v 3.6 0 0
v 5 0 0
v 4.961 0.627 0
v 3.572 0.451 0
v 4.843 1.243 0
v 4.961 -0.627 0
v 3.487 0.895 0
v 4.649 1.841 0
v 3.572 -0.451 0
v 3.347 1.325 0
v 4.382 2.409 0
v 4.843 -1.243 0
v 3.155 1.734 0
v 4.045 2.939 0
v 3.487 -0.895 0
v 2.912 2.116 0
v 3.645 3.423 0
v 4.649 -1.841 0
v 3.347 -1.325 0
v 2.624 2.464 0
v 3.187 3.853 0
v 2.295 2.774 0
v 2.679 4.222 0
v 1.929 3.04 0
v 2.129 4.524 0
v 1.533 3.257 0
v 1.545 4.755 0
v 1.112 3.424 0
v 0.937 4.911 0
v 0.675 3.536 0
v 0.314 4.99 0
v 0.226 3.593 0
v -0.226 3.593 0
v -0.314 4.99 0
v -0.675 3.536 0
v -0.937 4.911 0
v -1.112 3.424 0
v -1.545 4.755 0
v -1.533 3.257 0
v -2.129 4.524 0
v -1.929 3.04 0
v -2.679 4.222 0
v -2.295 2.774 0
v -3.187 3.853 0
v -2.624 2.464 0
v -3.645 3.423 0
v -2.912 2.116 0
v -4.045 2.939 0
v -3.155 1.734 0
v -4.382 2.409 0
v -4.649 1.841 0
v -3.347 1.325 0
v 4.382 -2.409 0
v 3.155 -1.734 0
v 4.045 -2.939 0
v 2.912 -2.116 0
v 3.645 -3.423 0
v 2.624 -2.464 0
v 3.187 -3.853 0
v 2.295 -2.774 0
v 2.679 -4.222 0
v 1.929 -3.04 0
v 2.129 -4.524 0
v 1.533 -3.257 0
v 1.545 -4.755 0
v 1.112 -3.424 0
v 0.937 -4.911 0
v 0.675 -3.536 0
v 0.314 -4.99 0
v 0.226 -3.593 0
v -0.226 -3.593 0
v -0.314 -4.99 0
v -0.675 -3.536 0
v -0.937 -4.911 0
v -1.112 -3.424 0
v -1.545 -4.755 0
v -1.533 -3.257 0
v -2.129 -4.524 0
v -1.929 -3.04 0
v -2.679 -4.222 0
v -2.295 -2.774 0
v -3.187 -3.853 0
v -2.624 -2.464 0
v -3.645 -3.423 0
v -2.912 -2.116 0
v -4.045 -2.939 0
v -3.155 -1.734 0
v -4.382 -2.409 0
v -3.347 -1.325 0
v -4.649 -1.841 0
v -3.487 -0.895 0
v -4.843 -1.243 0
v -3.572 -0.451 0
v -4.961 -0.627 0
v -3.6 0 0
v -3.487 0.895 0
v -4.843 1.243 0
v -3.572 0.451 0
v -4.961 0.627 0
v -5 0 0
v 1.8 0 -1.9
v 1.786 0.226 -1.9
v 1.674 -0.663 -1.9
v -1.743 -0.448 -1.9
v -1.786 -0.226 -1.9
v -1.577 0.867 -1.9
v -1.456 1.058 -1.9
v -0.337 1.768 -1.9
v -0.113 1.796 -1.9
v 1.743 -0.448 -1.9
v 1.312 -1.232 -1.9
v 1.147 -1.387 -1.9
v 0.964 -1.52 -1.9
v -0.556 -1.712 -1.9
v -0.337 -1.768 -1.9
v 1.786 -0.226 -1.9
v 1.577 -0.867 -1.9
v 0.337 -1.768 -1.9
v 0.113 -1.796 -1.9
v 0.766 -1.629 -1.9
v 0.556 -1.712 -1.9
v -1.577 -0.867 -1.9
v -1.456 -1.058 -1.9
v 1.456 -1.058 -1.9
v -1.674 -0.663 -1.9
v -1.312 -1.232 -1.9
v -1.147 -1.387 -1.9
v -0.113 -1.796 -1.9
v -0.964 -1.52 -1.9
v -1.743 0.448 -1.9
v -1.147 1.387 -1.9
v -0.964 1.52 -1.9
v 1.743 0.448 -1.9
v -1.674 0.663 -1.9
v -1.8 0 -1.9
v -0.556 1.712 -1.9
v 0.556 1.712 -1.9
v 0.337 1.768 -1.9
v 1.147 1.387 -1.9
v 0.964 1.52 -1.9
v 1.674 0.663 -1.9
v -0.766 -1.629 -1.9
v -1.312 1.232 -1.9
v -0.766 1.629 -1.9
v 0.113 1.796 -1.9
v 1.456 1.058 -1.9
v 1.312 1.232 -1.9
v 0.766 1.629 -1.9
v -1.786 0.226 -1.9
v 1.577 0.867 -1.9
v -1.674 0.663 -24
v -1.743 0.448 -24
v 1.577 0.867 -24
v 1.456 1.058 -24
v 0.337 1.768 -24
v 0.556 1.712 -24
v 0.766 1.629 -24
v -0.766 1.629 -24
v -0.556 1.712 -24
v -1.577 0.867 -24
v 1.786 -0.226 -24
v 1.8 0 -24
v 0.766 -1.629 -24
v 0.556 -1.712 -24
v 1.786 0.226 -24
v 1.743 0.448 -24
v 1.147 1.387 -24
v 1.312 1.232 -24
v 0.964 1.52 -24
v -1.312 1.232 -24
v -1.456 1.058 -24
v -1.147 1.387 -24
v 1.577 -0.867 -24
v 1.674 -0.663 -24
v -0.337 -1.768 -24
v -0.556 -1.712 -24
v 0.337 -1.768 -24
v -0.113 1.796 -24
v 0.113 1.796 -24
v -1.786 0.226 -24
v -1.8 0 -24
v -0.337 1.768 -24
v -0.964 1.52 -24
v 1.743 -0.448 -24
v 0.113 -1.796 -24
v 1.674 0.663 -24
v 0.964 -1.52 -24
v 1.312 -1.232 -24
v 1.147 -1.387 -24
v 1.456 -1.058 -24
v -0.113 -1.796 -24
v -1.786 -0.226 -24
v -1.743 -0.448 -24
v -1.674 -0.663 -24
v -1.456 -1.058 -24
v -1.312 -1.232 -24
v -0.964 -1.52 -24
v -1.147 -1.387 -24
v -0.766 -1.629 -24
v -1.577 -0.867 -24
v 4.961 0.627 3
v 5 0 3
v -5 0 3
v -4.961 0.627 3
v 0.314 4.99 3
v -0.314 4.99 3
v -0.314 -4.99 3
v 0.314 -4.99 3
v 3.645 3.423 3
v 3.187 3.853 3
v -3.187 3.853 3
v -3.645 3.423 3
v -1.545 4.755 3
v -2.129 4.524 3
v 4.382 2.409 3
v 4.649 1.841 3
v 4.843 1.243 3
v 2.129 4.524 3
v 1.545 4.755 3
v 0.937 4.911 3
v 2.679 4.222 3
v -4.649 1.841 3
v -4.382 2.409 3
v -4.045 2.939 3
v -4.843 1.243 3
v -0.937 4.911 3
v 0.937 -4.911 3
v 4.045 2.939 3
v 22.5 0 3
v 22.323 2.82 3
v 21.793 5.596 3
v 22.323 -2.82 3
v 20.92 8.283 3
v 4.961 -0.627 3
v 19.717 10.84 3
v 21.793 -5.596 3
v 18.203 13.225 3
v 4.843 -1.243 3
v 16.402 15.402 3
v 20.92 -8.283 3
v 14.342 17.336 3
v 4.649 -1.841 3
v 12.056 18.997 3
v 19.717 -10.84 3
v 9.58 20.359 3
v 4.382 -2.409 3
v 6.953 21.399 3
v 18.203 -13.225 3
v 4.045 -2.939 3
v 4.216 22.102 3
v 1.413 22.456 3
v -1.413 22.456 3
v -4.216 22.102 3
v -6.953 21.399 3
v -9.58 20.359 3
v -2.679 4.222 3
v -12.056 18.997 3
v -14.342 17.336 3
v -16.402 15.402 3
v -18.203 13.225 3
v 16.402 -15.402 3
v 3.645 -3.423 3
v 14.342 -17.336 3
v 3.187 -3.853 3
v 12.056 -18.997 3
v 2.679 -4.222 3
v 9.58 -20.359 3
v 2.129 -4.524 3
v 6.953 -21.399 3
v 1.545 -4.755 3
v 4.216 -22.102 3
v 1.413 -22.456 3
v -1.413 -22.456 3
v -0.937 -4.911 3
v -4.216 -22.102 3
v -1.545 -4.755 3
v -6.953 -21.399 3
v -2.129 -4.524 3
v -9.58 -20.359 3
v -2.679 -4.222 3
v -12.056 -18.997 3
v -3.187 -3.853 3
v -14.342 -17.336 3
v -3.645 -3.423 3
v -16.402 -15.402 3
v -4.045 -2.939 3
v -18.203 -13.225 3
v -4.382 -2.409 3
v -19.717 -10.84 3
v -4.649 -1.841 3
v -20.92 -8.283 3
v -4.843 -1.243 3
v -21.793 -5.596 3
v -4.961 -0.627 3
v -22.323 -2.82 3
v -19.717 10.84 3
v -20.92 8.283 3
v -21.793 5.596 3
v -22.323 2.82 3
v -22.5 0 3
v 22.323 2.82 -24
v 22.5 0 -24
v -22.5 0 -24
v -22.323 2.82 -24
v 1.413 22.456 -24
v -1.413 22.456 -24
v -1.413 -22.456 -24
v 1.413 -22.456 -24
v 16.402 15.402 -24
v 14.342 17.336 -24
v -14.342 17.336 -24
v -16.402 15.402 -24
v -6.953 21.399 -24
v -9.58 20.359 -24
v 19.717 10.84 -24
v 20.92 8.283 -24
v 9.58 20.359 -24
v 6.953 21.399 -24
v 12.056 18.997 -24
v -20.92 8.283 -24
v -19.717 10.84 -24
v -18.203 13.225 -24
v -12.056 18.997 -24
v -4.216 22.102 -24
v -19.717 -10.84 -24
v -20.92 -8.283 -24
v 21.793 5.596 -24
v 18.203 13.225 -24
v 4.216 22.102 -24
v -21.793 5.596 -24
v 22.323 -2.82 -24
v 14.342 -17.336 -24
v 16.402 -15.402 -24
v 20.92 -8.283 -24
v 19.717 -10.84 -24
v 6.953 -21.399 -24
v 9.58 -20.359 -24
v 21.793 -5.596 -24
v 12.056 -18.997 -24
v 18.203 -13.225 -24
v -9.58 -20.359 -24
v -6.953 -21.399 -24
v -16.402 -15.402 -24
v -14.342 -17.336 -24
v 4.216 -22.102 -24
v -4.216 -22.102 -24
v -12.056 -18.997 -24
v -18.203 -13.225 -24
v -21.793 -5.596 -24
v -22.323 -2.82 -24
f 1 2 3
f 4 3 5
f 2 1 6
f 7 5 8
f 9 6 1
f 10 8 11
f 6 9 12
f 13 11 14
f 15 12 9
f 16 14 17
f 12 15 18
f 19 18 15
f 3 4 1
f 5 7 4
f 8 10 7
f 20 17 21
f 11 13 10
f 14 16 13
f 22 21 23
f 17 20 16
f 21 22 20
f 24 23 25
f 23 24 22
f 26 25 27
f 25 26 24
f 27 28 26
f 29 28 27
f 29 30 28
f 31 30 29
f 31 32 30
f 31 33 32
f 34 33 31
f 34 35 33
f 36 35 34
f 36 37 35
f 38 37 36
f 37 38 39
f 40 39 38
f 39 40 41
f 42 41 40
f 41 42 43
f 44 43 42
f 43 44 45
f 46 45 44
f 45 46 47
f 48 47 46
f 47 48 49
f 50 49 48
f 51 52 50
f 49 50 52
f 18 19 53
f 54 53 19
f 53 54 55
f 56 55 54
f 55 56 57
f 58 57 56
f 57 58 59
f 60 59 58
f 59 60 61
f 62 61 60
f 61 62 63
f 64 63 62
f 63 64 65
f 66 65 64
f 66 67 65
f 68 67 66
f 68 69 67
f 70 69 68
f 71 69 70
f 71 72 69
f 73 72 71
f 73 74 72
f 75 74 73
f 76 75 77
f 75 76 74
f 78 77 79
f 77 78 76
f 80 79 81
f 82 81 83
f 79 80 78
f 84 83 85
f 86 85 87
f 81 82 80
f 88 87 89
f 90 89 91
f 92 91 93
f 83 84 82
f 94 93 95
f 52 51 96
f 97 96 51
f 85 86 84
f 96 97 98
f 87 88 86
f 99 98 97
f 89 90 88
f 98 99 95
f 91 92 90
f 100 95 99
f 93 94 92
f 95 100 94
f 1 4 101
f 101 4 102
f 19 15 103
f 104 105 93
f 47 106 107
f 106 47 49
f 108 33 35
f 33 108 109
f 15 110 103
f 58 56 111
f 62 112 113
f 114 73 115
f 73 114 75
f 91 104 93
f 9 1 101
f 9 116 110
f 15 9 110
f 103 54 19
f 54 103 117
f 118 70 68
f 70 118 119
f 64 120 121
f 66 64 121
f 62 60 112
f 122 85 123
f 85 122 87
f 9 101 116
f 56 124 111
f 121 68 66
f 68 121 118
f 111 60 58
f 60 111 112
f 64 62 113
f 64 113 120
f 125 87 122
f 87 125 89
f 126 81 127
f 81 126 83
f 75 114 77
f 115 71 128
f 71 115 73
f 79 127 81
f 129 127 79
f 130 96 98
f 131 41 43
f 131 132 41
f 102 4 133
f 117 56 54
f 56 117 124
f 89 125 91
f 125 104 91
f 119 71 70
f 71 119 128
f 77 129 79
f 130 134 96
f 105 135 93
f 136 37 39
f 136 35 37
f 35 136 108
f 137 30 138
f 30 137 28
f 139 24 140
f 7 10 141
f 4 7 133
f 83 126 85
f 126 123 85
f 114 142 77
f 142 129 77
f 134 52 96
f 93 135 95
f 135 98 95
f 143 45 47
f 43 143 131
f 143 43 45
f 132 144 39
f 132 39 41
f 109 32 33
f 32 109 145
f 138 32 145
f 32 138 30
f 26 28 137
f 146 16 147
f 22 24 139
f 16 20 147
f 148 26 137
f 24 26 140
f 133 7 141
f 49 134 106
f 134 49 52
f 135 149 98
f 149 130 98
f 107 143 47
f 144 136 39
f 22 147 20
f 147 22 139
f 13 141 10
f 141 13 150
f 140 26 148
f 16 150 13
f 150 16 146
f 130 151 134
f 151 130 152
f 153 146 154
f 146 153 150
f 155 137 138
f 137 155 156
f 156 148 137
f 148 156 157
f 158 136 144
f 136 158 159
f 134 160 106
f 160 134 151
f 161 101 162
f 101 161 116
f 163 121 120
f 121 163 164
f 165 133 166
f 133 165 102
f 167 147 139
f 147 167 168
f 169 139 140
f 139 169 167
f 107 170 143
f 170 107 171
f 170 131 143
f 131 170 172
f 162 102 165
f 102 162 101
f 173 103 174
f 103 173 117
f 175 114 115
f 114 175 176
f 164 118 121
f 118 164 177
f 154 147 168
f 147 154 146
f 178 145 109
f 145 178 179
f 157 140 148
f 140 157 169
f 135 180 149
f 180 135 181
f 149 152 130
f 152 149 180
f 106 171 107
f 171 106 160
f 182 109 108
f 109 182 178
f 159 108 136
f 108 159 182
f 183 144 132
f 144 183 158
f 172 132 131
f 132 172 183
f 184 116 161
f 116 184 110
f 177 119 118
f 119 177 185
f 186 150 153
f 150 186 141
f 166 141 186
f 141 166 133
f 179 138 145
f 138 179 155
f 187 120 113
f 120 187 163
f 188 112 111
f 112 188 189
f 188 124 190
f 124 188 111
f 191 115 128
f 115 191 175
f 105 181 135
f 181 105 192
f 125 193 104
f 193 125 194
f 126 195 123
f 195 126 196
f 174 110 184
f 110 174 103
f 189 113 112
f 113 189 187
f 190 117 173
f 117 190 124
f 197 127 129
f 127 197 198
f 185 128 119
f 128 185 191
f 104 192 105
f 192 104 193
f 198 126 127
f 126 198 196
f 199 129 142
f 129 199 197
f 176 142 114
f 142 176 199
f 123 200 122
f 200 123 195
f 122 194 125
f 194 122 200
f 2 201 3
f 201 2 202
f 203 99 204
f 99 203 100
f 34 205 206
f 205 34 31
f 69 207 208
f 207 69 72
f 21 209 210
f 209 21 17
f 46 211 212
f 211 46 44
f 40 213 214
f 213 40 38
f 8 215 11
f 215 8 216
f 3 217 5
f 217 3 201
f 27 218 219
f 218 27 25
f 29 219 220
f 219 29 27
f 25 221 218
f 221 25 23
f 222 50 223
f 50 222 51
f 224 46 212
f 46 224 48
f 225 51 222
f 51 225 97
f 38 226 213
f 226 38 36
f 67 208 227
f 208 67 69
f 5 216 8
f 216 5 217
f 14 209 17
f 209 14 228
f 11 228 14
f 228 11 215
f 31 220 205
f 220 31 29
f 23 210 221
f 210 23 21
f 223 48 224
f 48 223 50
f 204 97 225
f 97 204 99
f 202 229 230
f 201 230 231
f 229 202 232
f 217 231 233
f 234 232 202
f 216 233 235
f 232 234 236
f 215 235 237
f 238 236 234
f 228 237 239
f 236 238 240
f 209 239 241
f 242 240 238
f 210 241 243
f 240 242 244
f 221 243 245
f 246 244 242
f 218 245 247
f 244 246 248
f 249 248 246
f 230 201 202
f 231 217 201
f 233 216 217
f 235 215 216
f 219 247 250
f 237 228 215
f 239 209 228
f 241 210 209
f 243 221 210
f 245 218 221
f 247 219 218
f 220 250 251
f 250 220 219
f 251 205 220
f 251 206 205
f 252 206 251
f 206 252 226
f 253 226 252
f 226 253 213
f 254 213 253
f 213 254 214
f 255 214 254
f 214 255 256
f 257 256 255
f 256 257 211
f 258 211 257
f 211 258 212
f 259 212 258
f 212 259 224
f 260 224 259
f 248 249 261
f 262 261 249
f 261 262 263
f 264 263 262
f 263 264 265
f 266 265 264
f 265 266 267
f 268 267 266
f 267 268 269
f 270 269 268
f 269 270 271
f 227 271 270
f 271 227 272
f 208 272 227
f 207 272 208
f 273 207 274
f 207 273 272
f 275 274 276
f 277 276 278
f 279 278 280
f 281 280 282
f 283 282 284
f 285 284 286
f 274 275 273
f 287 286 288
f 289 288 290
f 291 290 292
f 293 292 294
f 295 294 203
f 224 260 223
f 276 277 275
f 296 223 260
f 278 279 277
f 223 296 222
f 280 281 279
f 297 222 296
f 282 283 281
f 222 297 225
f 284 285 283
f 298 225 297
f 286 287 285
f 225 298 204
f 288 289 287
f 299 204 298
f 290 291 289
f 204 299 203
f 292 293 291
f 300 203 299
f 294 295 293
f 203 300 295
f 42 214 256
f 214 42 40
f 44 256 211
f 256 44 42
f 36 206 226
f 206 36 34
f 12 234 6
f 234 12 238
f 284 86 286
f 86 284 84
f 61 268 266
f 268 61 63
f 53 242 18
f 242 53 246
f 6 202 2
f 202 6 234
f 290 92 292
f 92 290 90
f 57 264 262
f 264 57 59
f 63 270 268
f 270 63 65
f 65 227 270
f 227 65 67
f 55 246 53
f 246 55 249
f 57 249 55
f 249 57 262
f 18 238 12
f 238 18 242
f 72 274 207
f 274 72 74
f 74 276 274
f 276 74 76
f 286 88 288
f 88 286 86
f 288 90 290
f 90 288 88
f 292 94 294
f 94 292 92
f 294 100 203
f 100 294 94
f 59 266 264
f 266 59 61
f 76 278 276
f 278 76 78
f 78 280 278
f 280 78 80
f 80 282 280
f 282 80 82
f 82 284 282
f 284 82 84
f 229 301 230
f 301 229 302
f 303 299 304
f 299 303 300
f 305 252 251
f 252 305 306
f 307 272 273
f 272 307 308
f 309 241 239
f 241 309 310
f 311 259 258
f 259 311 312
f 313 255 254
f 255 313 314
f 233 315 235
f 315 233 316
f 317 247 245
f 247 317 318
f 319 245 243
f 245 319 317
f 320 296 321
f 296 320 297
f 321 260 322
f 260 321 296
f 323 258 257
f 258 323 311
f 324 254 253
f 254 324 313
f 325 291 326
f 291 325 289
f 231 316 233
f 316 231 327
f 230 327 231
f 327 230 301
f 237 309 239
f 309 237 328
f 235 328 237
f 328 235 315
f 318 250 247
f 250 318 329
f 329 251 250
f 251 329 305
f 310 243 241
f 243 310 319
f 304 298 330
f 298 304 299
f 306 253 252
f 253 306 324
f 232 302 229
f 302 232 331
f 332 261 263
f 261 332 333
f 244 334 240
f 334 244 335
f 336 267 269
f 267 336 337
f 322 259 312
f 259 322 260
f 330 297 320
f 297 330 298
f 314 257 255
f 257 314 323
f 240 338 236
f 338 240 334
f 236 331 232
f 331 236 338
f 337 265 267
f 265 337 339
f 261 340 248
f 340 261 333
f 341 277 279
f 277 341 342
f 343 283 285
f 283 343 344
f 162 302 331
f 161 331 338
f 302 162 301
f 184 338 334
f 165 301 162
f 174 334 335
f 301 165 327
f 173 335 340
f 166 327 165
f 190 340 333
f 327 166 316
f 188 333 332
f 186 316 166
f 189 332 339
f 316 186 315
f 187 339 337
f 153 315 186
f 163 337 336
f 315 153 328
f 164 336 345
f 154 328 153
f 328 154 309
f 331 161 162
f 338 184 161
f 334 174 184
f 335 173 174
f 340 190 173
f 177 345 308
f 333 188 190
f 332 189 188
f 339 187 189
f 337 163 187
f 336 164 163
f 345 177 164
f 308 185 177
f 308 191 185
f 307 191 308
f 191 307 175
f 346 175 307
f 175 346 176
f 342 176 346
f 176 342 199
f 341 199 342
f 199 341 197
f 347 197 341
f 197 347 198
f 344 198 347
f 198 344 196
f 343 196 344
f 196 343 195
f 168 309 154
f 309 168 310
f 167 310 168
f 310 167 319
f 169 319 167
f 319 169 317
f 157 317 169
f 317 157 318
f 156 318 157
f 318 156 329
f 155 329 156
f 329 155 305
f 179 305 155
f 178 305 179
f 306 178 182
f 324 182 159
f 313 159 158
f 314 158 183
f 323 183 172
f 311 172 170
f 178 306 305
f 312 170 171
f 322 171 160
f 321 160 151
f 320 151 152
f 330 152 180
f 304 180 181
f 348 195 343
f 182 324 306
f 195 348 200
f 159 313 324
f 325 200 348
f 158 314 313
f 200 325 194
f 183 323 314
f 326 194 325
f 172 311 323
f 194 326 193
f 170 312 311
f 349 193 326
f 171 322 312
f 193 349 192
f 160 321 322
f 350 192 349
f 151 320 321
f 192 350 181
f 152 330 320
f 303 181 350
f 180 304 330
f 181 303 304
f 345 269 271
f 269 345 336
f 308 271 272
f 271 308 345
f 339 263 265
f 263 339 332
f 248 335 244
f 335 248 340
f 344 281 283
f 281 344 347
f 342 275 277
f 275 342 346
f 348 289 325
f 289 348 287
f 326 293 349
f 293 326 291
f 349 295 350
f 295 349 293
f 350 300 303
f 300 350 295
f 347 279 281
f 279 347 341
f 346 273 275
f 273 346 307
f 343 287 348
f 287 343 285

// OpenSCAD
$fn = 50;

difference() {
	union() {
		translate(v = [0, 0, -24.0]) {
			cylinder(h = 27, r = 22.5);
		}
	}
	union() {
		translate(v = [0, 0, 0]) {
			rotate(a = [0, 0, 0]) {
				difference() {
					union() {
						translate(v = [0, 0, -27.0]) {
							cylinder(h = 27, r = 1.5);
						}
						translate(v = [0, 0, -1.9]) {
							cylinder(h = 1.9, r1 = 1.8, r2 = 3.6);
						}
						translate(v = [0, 0, -27.0]) {
							cylinder(h = 27, r = 1.8);
						}
						translate(v = [0, 0, -27.0]) {
							cylinder(h = 27, r = 1.5);
						}
					}
					union();
				}
			}
		}
		#cylinder(h = 3, r = 5.0);
	}
}
